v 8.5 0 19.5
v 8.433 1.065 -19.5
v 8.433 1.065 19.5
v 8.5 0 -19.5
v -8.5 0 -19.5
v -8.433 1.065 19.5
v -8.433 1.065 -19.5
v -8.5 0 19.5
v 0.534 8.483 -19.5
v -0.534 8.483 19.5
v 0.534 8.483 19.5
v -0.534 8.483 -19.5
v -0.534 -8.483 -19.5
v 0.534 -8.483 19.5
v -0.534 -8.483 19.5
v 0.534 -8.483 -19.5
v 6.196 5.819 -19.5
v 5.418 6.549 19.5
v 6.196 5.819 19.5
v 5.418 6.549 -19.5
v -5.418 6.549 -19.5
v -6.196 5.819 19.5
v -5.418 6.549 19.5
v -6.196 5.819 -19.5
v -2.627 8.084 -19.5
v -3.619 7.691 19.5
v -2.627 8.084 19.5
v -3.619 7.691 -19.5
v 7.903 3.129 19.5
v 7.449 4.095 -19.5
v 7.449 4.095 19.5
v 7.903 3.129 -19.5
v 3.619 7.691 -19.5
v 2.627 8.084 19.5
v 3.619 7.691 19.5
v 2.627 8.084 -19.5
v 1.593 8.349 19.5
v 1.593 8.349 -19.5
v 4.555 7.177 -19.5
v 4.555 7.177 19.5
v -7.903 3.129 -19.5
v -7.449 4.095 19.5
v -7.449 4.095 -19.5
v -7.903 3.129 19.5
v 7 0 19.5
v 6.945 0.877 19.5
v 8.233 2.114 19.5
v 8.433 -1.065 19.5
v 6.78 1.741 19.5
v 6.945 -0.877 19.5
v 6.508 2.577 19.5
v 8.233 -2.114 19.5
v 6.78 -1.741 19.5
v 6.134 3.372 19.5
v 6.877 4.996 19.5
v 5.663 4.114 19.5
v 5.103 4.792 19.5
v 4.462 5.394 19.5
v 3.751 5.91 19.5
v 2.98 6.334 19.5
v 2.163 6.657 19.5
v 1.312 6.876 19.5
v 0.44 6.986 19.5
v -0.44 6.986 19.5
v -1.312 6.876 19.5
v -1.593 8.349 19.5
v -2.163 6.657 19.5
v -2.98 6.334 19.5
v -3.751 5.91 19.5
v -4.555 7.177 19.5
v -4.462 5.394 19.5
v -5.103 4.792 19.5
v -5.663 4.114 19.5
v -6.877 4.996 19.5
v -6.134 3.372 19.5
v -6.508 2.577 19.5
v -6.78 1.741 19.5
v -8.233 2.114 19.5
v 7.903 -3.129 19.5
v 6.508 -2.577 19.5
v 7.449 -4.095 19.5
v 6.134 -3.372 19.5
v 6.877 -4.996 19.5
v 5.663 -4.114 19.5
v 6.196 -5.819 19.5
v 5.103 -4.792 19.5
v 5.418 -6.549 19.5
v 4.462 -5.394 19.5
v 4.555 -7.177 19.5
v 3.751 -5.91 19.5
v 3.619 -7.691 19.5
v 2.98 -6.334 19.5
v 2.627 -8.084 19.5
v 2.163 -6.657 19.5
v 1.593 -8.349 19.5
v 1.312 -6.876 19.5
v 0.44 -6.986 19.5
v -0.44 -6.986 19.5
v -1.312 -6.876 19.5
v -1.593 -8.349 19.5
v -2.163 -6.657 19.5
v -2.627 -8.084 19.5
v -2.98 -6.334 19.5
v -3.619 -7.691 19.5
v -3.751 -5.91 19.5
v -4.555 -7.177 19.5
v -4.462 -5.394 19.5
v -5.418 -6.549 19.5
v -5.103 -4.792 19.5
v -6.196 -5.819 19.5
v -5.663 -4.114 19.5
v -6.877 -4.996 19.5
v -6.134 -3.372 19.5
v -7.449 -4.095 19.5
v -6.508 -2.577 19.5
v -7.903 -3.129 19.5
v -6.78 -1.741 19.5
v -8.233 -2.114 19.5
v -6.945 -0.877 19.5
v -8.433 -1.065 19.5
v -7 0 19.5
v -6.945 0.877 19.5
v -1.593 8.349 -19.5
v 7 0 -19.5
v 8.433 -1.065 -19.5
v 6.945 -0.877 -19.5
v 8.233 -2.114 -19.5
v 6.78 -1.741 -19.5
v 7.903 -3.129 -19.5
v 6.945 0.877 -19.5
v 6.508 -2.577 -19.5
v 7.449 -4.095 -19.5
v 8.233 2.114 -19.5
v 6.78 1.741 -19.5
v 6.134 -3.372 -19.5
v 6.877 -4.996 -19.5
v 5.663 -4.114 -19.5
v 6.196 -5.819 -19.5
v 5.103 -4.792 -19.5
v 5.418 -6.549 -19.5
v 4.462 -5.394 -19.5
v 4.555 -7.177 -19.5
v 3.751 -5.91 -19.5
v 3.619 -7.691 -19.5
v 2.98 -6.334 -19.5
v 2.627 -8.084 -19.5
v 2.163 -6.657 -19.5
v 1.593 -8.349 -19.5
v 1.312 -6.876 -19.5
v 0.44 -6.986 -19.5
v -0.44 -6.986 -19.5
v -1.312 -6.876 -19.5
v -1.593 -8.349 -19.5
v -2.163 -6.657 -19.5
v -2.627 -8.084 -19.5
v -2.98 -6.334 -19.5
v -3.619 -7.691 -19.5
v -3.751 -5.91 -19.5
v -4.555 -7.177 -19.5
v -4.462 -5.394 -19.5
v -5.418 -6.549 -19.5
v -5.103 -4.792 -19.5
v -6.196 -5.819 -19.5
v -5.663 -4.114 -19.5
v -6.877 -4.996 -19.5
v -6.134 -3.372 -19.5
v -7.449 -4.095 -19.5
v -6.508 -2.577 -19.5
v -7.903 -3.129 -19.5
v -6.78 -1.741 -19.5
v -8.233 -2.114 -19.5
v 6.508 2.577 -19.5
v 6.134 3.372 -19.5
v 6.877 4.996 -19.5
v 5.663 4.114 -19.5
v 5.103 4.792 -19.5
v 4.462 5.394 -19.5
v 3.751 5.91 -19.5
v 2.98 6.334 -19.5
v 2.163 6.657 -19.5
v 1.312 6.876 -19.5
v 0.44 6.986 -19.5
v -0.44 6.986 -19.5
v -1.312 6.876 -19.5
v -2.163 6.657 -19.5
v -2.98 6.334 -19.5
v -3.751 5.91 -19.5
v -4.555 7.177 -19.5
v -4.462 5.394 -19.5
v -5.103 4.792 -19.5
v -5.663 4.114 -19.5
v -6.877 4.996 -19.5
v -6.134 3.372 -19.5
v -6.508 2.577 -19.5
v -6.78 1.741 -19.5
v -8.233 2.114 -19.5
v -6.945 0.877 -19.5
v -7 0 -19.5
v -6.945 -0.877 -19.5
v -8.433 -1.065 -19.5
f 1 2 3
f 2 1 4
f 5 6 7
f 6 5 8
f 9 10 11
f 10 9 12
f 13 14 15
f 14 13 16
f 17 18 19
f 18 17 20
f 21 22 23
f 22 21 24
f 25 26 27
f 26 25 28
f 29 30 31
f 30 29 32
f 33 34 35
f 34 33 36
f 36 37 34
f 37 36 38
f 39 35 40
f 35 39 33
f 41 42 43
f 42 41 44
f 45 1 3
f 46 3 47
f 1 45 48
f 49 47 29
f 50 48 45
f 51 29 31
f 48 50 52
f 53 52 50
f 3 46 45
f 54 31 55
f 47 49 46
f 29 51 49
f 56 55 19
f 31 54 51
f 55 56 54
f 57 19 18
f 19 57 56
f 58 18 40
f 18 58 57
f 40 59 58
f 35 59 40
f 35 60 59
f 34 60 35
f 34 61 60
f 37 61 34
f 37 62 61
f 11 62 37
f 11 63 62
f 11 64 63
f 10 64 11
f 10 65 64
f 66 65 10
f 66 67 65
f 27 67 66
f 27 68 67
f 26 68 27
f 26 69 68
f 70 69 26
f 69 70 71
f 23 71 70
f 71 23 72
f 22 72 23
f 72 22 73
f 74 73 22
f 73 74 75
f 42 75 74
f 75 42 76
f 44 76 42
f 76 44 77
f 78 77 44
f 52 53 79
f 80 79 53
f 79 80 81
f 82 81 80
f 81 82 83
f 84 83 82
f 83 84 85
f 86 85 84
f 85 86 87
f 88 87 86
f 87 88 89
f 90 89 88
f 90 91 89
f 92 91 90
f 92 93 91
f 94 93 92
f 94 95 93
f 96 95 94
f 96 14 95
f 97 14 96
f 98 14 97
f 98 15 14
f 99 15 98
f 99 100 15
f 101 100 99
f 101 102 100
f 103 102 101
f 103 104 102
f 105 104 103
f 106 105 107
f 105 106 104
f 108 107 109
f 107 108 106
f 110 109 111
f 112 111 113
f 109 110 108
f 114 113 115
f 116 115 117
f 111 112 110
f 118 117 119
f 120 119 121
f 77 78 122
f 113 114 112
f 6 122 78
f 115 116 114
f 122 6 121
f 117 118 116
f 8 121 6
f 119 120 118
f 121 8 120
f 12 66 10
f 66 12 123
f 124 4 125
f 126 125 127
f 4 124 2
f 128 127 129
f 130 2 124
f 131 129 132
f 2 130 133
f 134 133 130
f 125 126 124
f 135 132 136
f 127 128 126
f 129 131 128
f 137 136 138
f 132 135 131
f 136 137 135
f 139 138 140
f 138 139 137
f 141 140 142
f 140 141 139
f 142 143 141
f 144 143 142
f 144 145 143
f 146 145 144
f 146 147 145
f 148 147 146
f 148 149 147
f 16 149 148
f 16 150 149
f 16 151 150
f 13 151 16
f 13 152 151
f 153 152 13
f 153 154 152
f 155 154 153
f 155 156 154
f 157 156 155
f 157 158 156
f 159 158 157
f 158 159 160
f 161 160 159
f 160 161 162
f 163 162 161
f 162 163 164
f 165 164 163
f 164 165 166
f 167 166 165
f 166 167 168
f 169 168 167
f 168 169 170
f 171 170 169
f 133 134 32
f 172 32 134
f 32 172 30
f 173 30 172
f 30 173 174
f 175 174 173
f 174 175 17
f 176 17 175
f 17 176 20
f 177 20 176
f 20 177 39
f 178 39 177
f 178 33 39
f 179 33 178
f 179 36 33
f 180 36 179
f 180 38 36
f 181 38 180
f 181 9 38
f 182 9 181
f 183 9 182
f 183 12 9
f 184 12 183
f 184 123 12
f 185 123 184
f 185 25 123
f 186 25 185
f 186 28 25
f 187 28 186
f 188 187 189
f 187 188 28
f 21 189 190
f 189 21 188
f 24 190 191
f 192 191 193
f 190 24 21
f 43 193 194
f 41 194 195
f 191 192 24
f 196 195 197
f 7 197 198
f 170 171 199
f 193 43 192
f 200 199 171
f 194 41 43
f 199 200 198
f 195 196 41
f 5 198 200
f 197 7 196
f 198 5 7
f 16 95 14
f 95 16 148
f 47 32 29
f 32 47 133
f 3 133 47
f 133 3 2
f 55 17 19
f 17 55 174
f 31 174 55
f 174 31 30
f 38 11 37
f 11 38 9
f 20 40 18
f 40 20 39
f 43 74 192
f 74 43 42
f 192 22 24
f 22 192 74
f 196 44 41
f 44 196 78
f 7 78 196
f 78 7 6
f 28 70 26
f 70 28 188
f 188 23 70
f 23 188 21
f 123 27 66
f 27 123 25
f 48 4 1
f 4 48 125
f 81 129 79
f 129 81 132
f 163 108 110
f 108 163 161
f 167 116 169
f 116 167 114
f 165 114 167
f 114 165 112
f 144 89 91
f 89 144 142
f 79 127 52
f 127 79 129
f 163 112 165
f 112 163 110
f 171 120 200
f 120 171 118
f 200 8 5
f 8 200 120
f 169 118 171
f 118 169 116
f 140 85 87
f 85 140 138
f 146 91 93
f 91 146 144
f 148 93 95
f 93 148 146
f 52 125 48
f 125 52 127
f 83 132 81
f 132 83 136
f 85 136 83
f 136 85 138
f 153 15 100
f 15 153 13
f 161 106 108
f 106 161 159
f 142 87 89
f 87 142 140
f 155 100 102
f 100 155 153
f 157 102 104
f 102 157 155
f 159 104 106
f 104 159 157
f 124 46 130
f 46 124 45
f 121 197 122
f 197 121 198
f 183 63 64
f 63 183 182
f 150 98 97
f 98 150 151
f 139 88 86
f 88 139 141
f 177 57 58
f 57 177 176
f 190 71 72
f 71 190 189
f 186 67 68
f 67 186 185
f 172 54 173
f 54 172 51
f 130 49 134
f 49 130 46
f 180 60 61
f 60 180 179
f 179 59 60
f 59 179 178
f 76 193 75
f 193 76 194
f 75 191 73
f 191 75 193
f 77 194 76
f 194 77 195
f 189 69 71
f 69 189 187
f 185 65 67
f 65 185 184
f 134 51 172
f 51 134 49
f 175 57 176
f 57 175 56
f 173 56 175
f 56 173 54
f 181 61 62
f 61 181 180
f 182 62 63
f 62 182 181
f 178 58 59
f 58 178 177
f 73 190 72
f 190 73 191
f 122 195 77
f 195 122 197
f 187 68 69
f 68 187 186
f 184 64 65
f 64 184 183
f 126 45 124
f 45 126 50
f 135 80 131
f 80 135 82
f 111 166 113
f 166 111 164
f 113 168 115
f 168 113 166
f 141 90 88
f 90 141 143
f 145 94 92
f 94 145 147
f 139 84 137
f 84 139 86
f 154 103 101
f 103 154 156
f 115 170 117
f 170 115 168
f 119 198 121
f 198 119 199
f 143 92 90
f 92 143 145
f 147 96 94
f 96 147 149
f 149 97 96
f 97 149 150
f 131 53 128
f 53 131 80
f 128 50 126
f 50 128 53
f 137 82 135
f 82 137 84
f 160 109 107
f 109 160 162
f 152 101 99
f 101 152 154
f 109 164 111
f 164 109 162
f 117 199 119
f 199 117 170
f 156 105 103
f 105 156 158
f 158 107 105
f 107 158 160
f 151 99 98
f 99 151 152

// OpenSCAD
$fn = 50;


difference() {
	union() {
		translate(v = [0, 0, -19.5000000000]) {
			cylinder(h = 39, r = 8.5000000000);
		}
	}
	union() {
		translate(v = [0, 0, -100.0000000000]) {
			cylinder(h = 200, r = 7);
		}
	}
}
